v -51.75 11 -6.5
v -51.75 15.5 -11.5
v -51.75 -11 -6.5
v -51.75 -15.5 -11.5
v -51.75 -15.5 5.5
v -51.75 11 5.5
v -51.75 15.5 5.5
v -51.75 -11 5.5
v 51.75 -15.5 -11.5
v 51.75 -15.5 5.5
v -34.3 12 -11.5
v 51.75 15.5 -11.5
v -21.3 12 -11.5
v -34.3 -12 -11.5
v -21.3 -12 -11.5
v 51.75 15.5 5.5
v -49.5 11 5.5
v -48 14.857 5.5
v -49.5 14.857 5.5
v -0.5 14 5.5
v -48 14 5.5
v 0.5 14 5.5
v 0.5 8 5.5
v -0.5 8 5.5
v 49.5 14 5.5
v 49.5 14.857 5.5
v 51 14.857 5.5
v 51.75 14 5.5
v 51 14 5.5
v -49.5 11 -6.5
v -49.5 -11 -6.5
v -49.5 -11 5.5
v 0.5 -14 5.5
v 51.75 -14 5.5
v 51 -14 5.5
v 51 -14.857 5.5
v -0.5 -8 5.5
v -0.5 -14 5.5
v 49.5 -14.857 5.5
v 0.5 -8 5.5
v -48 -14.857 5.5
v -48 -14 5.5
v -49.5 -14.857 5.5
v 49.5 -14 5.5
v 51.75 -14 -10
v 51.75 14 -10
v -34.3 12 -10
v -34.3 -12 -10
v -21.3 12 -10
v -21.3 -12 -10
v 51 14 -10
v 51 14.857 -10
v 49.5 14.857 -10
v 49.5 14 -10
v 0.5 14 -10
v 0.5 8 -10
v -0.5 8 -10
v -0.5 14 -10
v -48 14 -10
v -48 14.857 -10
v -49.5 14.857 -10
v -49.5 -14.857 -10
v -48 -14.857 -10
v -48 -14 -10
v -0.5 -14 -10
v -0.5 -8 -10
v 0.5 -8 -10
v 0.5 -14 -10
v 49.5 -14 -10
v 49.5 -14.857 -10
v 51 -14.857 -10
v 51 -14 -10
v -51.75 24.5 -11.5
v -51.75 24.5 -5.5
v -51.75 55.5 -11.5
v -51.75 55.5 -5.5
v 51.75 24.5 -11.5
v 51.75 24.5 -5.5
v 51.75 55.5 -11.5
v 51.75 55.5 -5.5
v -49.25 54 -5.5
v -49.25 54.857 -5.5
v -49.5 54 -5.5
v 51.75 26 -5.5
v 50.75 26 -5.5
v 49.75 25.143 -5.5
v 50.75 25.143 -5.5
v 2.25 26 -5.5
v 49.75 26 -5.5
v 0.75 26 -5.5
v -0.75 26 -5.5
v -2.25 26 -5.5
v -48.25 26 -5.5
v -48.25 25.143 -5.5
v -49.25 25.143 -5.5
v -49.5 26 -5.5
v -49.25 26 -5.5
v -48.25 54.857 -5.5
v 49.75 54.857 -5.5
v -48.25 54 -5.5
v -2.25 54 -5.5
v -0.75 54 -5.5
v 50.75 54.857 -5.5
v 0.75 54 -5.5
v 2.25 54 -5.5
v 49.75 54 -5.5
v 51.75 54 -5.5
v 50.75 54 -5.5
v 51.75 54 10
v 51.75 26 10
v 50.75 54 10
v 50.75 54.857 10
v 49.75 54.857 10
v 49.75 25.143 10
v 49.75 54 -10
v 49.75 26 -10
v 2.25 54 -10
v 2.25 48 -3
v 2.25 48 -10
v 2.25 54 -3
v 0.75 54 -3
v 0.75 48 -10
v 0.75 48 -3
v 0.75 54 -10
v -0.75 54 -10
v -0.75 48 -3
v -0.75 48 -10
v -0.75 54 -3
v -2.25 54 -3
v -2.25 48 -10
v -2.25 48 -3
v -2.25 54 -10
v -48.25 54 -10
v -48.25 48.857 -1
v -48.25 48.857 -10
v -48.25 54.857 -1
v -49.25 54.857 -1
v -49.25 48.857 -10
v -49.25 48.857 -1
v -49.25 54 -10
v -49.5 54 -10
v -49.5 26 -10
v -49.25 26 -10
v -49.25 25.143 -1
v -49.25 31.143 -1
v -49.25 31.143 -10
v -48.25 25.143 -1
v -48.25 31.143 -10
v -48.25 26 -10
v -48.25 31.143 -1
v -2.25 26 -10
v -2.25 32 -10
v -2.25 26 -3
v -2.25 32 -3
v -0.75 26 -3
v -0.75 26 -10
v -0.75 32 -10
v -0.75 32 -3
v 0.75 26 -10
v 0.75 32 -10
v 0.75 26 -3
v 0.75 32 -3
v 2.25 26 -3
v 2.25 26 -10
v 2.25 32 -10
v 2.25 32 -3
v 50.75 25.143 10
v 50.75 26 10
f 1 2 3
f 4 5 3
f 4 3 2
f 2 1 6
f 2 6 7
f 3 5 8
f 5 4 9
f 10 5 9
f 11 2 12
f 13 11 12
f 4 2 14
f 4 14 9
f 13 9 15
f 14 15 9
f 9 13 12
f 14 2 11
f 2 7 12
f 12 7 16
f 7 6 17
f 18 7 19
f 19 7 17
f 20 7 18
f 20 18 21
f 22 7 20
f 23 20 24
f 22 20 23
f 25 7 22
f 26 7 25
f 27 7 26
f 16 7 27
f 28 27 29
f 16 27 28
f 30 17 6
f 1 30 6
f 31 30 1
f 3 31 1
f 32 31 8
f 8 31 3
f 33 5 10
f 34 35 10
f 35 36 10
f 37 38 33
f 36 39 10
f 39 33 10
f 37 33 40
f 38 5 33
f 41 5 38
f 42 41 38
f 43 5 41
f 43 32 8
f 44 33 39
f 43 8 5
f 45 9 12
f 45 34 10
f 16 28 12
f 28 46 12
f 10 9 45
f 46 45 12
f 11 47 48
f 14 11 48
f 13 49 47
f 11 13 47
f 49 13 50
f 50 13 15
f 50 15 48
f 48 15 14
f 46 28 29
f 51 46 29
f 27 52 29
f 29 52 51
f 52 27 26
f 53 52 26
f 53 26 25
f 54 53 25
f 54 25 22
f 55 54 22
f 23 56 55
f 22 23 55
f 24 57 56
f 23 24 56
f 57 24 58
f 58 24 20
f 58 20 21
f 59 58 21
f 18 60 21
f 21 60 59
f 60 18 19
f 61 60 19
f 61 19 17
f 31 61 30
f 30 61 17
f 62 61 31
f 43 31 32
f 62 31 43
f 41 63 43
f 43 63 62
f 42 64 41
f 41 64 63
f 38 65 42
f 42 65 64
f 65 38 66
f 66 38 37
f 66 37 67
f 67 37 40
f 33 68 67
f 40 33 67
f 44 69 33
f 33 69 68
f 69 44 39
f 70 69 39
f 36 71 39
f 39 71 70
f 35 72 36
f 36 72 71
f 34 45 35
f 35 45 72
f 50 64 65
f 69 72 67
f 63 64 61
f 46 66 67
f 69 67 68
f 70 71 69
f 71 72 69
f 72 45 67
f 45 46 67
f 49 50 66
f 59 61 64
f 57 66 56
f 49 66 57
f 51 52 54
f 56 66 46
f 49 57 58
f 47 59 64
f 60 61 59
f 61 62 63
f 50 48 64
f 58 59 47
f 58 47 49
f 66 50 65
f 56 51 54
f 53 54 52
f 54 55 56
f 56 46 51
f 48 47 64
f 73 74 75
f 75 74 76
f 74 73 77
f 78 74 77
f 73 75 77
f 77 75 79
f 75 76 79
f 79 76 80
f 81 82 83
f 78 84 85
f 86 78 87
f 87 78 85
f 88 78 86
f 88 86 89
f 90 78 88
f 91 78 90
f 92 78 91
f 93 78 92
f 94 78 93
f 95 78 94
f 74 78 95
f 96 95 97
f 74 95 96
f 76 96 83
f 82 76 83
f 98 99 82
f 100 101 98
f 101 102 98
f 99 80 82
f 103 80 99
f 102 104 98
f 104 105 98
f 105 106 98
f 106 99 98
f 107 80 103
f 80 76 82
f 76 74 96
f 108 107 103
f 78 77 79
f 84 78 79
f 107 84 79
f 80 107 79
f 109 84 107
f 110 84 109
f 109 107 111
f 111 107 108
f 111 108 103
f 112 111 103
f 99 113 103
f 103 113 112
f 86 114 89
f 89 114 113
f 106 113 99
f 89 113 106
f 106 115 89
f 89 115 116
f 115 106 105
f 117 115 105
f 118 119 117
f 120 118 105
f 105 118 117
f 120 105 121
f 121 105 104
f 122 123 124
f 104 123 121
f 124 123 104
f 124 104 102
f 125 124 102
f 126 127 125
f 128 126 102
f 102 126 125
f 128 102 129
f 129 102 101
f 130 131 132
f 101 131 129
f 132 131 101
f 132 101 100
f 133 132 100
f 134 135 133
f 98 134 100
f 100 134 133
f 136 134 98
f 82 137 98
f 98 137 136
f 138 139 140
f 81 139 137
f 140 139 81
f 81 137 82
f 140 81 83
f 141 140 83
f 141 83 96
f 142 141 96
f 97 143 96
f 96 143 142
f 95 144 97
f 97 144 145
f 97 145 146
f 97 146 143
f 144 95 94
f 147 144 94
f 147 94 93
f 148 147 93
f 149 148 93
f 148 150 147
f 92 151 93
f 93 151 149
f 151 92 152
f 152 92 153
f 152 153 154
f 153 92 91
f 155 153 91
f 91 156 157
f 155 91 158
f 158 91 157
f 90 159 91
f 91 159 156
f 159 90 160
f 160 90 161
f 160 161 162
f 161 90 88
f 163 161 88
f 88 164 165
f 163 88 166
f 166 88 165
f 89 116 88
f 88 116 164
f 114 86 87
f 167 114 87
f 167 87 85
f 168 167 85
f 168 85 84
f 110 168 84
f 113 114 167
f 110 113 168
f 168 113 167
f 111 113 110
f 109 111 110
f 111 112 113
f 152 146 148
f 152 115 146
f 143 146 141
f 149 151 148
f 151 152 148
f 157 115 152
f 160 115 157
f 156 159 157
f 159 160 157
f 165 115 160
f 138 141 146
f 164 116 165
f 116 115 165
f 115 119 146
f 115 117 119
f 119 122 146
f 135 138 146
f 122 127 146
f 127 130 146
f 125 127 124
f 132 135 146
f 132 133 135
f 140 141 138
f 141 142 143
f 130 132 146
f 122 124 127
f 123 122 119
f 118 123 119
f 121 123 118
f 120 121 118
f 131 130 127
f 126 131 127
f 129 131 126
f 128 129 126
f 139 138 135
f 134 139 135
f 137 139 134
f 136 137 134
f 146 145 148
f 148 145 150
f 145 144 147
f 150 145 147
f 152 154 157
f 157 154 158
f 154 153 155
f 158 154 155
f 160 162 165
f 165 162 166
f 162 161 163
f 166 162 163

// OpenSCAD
/*
cube([51.6,26.5,(26.7+4)/2]);
color("red")cube([26.7,26,5]);
translate([0,0,5]) color("blue") cube([18,26,4]);
translate([0,0,9]) color("blue") cube([15,20,4]);
*/
/*
difference() {
translate([0,0,-.75]) cube([51.6+3,26.5+3,(26.7+4)+1.5],center=true);
cube([51.6,26.5,(26.7+4)],center=true);
}

*/

w=3;

module top() {
rotate([180,0,0])
difference() {
union() {
difference() {
cube([102+w/2,28+w,20+w],center=true);//Shell


translate([-51+3*w/4,0,0]) {

translate([0,-14,0]) cube([w/2,4*w/7,20],center=true);
translate([0,14,0]) cube([w/2,4*w/7,20],center=true);
}
translate([w/2,0,0])cube([102,28,20],center=true);//inner cutout



translate([-32.8+5,0,19/2]) cube([13,24,5],center=true); //OLED

translate([-51,0,.5])cube([10,22,12],center=true);//ICD Port

translate([51-w/4,0,0]) {
doora();
}
}
translate([0,-14+w,0]) cube([w/3,2*w,20],center=true);
translate([0,14-w,0]) cube([w/3,2*w,20],center=true);
}
translate([0,0,-10.5])cube([110,35,10],center=true);
}
}

module bottom() {
rotate([180,0,0])
difference() {
union() {
difference() {
cube([102+w/2,28+w,20+w],center=true);//Shell

translate([w/2,0,0])cube([102,28,20],center=true);//inner cutout



translate([-32.8+5,0,19/2]) cube([13,24,5],center=true); //OLED

translate([-51,0,.5])cube([10,22,12],center=true);//ICD Port


translate([0,0,4.5])cube([110,35,20],center=true);
}
translate([51-w/4,0,0]) {
doorb();
}
translate([-51+3*w/4,0,-6]) {

translate([0,-14+w-(4*w/14),0]) cube([w/3,2*w,10],center=true);
translate([0,14-w+(4*w/14),0]) cube([w/3,2*w,10],center=true);
}

translate([-w/2,-14+w,-6.5]) cube([w/2,2*w,7],center=true);
translate([-w/2,14-w,-6.5]) cube([w/2,2*w,7],center=true);

translate([w/2,-14+w,-6.5]) cube([w/2,2*w,7],center=true);
translate([w/2,14-w,-6.5]) cube([w/2,2*w,7],center=true);
}
}
}


module doora() {
translate([w/8,0,0])cube([3*w/4,28,20],center=true);
translate([0,-14,0]) cube([w/2,4*w/7,20],center=true);
translate([0,14,0]) cube([w/2,4*w/7,20],center=true);
}

module doorb() {
translate([w/6,0,0])cube([2*w/3,28,20],center=true);
translate([0,-14,0]) cube([w/3,4*w/7,20],center=true);
translate([0,14,0]) cube([w/3,4*w/7,20],center=true);
}


top();
translate([0,40,0])rotate([180,0,0]) bottom();
//translate([0,0,3]) bottom();
//Extend top above LCD 10.5mm
//Internal height 20mm
//			  width  27.8mm
